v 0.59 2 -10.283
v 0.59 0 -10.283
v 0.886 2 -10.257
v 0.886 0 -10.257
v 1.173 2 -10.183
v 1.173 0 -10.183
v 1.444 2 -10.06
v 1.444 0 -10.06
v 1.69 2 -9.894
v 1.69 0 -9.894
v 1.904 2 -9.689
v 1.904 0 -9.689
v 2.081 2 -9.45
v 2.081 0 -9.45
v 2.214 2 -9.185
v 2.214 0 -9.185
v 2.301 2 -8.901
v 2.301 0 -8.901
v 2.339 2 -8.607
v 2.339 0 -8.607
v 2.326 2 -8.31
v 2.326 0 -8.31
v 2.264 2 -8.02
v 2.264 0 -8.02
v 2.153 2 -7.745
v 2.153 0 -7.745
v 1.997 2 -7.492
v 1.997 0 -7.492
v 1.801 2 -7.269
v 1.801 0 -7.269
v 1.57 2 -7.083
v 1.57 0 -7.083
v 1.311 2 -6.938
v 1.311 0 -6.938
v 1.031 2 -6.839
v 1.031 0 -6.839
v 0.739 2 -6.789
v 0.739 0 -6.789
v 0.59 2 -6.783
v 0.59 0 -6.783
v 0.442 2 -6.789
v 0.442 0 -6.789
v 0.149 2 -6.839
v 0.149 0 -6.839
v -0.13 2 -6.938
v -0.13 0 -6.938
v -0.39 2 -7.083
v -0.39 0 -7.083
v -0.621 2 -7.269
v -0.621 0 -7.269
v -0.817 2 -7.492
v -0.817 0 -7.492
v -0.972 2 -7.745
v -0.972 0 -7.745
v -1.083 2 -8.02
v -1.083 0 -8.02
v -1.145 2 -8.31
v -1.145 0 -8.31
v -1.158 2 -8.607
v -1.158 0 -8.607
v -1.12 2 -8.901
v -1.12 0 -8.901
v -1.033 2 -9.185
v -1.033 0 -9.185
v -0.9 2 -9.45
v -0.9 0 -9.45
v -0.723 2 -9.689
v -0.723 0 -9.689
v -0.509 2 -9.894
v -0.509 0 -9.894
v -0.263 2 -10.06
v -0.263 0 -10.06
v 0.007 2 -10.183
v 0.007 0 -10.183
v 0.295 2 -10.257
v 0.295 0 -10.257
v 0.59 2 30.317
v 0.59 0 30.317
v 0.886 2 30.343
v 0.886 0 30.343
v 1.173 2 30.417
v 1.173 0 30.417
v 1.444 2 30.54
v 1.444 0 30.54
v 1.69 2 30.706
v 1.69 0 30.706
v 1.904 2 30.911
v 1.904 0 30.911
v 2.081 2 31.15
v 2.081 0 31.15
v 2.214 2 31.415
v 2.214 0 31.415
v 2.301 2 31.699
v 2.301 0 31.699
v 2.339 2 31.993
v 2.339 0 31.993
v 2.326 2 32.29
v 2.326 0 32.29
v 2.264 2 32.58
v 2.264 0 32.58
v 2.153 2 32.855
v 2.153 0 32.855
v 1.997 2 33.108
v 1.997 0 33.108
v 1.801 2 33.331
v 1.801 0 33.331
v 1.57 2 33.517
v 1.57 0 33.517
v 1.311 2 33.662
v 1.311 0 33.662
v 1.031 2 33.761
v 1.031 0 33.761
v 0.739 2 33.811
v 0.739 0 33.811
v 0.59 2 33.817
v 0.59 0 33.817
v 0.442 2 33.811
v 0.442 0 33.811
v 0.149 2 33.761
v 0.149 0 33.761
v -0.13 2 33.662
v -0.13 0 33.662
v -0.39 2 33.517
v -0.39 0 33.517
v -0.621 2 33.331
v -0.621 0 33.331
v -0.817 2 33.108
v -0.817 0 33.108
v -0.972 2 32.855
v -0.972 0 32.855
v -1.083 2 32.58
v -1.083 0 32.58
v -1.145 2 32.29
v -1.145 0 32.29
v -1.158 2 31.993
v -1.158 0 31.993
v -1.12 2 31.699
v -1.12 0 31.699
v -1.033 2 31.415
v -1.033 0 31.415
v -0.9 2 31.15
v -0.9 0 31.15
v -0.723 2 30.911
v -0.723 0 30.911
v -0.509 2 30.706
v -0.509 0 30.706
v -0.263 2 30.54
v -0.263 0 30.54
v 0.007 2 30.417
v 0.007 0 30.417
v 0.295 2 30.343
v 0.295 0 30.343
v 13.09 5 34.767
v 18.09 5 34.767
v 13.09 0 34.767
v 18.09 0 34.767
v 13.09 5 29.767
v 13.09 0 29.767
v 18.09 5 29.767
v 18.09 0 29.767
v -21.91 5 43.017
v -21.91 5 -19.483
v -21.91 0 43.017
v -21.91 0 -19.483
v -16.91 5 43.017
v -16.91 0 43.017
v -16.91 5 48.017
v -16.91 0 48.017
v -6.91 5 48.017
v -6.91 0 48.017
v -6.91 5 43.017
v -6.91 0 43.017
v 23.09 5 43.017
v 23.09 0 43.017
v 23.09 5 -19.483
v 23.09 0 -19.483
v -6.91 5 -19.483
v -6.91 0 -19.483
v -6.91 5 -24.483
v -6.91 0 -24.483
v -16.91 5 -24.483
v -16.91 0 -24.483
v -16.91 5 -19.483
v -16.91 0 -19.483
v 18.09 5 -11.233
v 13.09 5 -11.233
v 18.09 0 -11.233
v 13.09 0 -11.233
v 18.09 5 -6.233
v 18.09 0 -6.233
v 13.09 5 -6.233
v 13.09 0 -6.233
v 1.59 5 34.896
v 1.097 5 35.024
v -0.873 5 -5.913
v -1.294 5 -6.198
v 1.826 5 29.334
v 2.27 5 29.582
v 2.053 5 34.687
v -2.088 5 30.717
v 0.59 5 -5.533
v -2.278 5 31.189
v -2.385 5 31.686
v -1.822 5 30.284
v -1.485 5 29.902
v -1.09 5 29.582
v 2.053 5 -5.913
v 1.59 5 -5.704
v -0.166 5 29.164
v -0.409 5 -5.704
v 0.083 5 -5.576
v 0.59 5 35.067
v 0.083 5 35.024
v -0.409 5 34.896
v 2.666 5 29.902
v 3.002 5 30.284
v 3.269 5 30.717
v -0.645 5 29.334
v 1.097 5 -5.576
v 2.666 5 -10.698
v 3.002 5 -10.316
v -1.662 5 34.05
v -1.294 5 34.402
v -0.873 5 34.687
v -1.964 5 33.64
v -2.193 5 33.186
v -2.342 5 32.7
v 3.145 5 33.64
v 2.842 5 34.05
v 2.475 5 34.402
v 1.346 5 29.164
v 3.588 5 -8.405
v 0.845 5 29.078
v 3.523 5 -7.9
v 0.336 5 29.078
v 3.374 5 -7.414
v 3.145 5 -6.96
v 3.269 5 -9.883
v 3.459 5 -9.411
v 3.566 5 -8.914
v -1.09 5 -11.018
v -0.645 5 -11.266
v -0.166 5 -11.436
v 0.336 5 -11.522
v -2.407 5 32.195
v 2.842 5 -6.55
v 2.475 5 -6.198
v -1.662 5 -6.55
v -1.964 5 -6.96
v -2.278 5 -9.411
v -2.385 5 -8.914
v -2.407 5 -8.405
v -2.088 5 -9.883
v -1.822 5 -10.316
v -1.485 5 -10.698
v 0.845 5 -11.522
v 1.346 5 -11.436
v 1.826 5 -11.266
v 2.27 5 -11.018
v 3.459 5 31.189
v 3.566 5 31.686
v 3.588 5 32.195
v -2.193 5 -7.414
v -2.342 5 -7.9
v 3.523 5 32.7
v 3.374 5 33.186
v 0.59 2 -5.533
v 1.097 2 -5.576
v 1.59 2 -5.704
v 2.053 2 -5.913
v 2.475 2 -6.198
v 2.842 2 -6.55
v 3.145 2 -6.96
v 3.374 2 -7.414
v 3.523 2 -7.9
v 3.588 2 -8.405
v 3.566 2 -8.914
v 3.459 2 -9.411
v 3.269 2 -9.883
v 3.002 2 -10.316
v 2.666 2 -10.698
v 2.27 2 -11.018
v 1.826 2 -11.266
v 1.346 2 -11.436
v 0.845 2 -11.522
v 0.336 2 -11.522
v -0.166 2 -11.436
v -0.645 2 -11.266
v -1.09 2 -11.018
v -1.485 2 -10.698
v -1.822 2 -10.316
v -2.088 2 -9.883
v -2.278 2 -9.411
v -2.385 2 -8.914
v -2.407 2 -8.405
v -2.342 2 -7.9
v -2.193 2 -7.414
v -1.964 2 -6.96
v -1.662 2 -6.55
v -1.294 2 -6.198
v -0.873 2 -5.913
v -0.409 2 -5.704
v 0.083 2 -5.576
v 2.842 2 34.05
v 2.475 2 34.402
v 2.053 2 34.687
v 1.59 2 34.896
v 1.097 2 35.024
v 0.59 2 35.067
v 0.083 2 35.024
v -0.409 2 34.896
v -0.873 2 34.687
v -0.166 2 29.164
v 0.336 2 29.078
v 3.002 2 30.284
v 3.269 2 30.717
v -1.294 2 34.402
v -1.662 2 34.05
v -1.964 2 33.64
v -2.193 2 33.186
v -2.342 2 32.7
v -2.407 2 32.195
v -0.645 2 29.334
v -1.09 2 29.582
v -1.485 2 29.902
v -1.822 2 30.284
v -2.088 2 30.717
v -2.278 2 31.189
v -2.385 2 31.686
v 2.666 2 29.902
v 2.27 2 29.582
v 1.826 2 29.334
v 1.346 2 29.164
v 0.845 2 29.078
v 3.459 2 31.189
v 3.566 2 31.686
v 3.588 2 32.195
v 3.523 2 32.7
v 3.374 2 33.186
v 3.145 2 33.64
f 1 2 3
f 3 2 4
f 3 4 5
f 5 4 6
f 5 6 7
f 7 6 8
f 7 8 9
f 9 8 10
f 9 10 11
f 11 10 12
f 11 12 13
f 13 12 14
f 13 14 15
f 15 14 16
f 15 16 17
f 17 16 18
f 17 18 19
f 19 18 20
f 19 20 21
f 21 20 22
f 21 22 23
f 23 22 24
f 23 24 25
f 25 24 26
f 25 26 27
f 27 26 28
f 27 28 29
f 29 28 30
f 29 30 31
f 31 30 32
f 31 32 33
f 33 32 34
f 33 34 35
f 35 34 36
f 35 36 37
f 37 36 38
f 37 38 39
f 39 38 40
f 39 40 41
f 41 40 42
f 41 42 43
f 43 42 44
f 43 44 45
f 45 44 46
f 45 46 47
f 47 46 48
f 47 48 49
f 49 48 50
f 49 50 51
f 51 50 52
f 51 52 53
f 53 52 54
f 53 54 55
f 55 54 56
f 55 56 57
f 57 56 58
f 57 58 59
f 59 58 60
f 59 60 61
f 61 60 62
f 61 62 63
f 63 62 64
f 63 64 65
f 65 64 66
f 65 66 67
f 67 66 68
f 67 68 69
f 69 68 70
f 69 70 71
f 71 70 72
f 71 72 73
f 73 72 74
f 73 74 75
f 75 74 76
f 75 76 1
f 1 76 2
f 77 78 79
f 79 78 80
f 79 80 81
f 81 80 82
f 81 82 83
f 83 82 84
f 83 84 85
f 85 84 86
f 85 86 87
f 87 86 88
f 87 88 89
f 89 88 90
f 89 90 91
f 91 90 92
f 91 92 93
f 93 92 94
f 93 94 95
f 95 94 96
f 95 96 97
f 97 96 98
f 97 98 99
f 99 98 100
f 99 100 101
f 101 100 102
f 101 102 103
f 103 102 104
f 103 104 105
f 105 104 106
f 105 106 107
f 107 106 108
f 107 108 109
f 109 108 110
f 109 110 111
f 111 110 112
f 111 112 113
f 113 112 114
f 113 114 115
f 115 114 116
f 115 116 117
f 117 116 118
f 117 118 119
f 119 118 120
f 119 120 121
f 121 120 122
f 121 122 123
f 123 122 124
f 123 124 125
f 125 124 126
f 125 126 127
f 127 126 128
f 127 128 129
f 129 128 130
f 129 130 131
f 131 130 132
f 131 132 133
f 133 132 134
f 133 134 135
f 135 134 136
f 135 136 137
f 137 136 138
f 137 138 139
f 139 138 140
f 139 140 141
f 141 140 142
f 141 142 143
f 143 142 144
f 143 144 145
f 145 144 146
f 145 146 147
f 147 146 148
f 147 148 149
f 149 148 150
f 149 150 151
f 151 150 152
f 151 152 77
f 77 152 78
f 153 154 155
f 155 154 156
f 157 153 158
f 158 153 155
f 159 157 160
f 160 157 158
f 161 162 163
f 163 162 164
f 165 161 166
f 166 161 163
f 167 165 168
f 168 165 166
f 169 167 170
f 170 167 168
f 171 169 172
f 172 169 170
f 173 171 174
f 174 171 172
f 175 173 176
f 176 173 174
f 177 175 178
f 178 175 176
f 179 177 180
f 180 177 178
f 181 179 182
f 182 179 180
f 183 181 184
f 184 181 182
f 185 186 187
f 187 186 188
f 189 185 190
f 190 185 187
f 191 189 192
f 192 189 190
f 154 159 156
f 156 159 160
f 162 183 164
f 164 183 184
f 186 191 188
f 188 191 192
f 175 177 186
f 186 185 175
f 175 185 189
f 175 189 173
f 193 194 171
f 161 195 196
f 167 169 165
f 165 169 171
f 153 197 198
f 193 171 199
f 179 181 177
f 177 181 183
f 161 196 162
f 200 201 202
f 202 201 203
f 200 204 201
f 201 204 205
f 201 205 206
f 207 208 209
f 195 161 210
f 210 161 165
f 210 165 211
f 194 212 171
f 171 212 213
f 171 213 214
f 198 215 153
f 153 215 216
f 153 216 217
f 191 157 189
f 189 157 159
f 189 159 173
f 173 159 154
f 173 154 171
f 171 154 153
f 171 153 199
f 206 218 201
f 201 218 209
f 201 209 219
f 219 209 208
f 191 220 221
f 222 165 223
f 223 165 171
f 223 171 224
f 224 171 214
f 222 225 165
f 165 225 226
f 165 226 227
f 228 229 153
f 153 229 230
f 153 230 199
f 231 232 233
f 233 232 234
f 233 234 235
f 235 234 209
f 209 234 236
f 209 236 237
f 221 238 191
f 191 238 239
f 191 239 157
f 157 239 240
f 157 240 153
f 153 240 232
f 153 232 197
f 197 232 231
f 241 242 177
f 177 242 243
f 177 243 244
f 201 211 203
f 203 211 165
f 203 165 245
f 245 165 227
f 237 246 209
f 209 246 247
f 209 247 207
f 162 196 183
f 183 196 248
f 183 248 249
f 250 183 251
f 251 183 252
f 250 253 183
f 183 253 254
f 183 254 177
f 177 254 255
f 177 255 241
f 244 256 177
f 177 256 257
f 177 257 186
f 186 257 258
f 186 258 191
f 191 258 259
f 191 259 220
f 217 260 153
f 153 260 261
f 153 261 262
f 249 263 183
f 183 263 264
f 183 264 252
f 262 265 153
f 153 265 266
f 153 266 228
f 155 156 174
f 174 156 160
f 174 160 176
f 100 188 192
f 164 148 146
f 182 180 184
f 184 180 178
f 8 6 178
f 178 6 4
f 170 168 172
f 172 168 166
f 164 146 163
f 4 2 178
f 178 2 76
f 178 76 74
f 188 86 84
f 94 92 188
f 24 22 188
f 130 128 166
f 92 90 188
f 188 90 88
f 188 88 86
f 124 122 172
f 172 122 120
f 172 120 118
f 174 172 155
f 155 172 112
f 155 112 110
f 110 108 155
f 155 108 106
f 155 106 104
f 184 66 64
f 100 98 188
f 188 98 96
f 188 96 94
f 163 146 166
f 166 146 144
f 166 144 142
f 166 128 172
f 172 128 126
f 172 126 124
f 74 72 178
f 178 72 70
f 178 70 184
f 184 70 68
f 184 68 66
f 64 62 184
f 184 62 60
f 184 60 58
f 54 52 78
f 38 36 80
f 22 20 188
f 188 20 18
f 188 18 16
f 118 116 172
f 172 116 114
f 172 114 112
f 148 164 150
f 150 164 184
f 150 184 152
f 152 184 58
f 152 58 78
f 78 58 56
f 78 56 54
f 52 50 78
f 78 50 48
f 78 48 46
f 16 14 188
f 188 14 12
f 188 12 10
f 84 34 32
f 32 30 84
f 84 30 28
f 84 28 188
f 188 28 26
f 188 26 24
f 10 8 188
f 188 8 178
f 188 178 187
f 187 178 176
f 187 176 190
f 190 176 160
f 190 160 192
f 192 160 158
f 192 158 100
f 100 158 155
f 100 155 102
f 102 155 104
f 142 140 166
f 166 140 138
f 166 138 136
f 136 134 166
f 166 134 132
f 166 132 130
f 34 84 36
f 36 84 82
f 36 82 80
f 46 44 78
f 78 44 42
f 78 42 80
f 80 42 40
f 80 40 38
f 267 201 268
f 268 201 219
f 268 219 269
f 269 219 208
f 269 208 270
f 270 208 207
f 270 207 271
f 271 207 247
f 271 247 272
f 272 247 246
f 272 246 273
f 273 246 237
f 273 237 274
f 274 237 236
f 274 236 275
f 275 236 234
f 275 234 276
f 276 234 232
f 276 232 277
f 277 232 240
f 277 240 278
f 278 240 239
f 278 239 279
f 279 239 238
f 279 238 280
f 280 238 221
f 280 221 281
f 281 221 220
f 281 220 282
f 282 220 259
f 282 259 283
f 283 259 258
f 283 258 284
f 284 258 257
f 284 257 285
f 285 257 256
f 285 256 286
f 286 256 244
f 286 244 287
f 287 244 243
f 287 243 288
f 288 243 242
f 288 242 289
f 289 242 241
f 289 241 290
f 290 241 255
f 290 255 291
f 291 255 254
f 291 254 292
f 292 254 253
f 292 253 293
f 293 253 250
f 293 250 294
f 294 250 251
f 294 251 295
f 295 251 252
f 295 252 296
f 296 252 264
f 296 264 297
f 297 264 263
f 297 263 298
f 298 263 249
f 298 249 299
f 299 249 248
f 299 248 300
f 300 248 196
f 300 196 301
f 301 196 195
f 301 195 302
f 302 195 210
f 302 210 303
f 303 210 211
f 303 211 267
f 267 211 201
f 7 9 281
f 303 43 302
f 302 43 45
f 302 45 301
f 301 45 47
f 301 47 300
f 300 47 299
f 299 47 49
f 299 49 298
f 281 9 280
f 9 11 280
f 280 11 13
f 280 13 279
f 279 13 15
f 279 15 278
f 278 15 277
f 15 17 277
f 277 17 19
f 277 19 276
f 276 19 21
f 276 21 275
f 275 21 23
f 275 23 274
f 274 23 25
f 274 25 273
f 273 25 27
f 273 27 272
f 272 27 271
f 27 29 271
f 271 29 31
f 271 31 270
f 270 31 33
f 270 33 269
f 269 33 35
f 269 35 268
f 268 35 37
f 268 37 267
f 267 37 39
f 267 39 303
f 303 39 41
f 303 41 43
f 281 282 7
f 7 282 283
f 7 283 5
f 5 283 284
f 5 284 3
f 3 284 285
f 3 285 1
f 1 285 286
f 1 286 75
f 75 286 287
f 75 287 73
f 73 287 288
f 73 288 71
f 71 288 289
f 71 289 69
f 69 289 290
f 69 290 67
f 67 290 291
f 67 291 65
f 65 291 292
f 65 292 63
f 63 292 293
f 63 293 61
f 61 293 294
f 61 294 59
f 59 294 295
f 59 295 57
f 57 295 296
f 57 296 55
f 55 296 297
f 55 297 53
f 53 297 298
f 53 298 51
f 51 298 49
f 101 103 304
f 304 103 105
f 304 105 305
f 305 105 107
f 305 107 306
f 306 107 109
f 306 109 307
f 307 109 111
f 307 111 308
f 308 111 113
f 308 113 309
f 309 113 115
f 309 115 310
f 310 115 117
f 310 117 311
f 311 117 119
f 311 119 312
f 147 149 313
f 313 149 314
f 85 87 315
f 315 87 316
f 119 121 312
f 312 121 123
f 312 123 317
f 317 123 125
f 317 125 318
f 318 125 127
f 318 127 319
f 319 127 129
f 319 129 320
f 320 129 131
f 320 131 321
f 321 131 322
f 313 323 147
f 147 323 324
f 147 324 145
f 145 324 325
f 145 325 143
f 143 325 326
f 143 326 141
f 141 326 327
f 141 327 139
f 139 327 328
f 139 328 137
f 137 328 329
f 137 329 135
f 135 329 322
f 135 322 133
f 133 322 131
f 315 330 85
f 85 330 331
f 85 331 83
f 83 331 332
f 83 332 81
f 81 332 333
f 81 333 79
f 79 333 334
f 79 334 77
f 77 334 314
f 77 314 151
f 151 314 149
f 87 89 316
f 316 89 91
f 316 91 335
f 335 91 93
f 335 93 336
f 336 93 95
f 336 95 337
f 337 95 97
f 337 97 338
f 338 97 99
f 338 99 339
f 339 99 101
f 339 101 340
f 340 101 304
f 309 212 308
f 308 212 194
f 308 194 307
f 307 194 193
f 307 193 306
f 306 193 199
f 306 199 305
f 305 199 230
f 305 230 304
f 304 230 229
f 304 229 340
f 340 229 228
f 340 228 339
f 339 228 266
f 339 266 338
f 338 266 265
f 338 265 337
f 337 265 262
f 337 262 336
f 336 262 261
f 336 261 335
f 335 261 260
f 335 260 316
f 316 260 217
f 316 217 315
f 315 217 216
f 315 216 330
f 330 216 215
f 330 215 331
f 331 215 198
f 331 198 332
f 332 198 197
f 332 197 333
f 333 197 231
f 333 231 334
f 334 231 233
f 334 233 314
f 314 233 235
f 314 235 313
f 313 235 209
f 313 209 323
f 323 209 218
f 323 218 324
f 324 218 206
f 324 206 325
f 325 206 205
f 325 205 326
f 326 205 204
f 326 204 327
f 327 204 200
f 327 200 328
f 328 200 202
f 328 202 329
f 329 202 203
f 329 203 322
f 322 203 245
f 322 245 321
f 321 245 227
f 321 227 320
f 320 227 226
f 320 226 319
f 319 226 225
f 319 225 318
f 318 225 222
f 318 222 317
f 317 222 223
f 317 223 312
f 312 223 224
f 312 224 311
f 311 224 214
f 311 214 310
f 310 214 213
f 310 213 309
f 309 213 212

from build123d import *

# Parameters (mm, degrees)
SKETCH1_R           = 1.75
SKETCH1_W           = 5
SKETCH1_H           = 5
SKETCH1_W_2         = 10
BOSS_EXTRUDE1_DEPTH = 5
SKETCH2_R           = 3
CUT_EXTRUDE1_DEPTH  = 3


with BuildPart() as part:
    # Sketch1 → Boss-Extrude1 (new body)
    # profile 1 of 4: a face of its own
    with BuildSketch(Plane(origin=(0, 0, 0), x_dir=(1, 0, 0), z_dir=(0, 1, 0))):
        Polygon((-21.909620991, 19.482507289), (-21.909620991, -11.767492711), (23.090379009, -11.767492711), (23.090379009, 19.482507289), (-6.909620991, 19.482507289), (-16.909620991, 19.482507289), align=None)
        with Locations(Location((0.590379009, 8.532507289, 0), (0, 0, 270))):
            Circle(SKETCH1_R, mode=Mode.SUBTRACT)
        with Locations((15.590379009, 8.732507289)):
            Rectangle(SKETCH1_W, SKETCH1_H, mode=Mode.SUBTRACT)
    # profile 2 of 4: a face of its own
    with BuildSketch(Plane(origin=(0, 0, 0), x_dir=(1, 0, 0), z_dir=(0, 1, 0))):
        Polygon((23.090379009, -11.767492711), (-21.909620991, -11.767492711), (-21.909620991, -43.017492711), (-16.909620991, -43.017492711), (-6.909620991, -43.017492711), (23.090379009, -43.017492711), align=None)
        with Locations(Location((0.590379009, -32.067492711, 0), (0, 0, 270))):
            Circle(SKETCH1_R, mode=Mode.SUBTRACT)
        with Locations((15.590379009, -32.267492711)):
            Rectangle(SKETCH1_W, SKETCH1_H, mode=Mode.SUBTRACT)
    # profile 3 of 4: a face of its own
    with BuildSketch(Plane(origin=(0, 0, 0), x_dir=(1, 0, 0), z_dir=(0, 1, 0))):
        with Locations((-11.909620991, -45.517492711)):
            Rectangle(SKETCH1_W_2, SKETCH1_H)
    # profile 4 of 4: a face of its own
    with BuildSketch(Plane(origin=(0, 0, 0), x_dir=(1, 0, 0), z_dir=(0, 1, 0))):
        with Locations((-11.909620991, 21.982507289)):
            Rectangle(SKETCH1_W_2, SKETCH1_H)
    extrude(amount=BOSS_EXTRUDE1_DEPTH)

    # Sketch2 → Cut-Extrude1 (cut)
    with BuildSketch(Plane(origin=(0, 5, 0), x_dir=(1, 0, 0), z_dir=(0, 1, 0))):
        with Locations(Location((0.590379009, -32.067492711, 0), (0, 0, 270))):
            Circle(SKETCH2_R)
        with Locations(Location((0.590379009, 8.532507289, 0), (0, 0, 270))):
            Circle(SKETCH2_R)
    extrude(amount=-CUT_EXTRUDE1_DEPTH, mode=Mode.SUBTRACT)


solid = part.part
